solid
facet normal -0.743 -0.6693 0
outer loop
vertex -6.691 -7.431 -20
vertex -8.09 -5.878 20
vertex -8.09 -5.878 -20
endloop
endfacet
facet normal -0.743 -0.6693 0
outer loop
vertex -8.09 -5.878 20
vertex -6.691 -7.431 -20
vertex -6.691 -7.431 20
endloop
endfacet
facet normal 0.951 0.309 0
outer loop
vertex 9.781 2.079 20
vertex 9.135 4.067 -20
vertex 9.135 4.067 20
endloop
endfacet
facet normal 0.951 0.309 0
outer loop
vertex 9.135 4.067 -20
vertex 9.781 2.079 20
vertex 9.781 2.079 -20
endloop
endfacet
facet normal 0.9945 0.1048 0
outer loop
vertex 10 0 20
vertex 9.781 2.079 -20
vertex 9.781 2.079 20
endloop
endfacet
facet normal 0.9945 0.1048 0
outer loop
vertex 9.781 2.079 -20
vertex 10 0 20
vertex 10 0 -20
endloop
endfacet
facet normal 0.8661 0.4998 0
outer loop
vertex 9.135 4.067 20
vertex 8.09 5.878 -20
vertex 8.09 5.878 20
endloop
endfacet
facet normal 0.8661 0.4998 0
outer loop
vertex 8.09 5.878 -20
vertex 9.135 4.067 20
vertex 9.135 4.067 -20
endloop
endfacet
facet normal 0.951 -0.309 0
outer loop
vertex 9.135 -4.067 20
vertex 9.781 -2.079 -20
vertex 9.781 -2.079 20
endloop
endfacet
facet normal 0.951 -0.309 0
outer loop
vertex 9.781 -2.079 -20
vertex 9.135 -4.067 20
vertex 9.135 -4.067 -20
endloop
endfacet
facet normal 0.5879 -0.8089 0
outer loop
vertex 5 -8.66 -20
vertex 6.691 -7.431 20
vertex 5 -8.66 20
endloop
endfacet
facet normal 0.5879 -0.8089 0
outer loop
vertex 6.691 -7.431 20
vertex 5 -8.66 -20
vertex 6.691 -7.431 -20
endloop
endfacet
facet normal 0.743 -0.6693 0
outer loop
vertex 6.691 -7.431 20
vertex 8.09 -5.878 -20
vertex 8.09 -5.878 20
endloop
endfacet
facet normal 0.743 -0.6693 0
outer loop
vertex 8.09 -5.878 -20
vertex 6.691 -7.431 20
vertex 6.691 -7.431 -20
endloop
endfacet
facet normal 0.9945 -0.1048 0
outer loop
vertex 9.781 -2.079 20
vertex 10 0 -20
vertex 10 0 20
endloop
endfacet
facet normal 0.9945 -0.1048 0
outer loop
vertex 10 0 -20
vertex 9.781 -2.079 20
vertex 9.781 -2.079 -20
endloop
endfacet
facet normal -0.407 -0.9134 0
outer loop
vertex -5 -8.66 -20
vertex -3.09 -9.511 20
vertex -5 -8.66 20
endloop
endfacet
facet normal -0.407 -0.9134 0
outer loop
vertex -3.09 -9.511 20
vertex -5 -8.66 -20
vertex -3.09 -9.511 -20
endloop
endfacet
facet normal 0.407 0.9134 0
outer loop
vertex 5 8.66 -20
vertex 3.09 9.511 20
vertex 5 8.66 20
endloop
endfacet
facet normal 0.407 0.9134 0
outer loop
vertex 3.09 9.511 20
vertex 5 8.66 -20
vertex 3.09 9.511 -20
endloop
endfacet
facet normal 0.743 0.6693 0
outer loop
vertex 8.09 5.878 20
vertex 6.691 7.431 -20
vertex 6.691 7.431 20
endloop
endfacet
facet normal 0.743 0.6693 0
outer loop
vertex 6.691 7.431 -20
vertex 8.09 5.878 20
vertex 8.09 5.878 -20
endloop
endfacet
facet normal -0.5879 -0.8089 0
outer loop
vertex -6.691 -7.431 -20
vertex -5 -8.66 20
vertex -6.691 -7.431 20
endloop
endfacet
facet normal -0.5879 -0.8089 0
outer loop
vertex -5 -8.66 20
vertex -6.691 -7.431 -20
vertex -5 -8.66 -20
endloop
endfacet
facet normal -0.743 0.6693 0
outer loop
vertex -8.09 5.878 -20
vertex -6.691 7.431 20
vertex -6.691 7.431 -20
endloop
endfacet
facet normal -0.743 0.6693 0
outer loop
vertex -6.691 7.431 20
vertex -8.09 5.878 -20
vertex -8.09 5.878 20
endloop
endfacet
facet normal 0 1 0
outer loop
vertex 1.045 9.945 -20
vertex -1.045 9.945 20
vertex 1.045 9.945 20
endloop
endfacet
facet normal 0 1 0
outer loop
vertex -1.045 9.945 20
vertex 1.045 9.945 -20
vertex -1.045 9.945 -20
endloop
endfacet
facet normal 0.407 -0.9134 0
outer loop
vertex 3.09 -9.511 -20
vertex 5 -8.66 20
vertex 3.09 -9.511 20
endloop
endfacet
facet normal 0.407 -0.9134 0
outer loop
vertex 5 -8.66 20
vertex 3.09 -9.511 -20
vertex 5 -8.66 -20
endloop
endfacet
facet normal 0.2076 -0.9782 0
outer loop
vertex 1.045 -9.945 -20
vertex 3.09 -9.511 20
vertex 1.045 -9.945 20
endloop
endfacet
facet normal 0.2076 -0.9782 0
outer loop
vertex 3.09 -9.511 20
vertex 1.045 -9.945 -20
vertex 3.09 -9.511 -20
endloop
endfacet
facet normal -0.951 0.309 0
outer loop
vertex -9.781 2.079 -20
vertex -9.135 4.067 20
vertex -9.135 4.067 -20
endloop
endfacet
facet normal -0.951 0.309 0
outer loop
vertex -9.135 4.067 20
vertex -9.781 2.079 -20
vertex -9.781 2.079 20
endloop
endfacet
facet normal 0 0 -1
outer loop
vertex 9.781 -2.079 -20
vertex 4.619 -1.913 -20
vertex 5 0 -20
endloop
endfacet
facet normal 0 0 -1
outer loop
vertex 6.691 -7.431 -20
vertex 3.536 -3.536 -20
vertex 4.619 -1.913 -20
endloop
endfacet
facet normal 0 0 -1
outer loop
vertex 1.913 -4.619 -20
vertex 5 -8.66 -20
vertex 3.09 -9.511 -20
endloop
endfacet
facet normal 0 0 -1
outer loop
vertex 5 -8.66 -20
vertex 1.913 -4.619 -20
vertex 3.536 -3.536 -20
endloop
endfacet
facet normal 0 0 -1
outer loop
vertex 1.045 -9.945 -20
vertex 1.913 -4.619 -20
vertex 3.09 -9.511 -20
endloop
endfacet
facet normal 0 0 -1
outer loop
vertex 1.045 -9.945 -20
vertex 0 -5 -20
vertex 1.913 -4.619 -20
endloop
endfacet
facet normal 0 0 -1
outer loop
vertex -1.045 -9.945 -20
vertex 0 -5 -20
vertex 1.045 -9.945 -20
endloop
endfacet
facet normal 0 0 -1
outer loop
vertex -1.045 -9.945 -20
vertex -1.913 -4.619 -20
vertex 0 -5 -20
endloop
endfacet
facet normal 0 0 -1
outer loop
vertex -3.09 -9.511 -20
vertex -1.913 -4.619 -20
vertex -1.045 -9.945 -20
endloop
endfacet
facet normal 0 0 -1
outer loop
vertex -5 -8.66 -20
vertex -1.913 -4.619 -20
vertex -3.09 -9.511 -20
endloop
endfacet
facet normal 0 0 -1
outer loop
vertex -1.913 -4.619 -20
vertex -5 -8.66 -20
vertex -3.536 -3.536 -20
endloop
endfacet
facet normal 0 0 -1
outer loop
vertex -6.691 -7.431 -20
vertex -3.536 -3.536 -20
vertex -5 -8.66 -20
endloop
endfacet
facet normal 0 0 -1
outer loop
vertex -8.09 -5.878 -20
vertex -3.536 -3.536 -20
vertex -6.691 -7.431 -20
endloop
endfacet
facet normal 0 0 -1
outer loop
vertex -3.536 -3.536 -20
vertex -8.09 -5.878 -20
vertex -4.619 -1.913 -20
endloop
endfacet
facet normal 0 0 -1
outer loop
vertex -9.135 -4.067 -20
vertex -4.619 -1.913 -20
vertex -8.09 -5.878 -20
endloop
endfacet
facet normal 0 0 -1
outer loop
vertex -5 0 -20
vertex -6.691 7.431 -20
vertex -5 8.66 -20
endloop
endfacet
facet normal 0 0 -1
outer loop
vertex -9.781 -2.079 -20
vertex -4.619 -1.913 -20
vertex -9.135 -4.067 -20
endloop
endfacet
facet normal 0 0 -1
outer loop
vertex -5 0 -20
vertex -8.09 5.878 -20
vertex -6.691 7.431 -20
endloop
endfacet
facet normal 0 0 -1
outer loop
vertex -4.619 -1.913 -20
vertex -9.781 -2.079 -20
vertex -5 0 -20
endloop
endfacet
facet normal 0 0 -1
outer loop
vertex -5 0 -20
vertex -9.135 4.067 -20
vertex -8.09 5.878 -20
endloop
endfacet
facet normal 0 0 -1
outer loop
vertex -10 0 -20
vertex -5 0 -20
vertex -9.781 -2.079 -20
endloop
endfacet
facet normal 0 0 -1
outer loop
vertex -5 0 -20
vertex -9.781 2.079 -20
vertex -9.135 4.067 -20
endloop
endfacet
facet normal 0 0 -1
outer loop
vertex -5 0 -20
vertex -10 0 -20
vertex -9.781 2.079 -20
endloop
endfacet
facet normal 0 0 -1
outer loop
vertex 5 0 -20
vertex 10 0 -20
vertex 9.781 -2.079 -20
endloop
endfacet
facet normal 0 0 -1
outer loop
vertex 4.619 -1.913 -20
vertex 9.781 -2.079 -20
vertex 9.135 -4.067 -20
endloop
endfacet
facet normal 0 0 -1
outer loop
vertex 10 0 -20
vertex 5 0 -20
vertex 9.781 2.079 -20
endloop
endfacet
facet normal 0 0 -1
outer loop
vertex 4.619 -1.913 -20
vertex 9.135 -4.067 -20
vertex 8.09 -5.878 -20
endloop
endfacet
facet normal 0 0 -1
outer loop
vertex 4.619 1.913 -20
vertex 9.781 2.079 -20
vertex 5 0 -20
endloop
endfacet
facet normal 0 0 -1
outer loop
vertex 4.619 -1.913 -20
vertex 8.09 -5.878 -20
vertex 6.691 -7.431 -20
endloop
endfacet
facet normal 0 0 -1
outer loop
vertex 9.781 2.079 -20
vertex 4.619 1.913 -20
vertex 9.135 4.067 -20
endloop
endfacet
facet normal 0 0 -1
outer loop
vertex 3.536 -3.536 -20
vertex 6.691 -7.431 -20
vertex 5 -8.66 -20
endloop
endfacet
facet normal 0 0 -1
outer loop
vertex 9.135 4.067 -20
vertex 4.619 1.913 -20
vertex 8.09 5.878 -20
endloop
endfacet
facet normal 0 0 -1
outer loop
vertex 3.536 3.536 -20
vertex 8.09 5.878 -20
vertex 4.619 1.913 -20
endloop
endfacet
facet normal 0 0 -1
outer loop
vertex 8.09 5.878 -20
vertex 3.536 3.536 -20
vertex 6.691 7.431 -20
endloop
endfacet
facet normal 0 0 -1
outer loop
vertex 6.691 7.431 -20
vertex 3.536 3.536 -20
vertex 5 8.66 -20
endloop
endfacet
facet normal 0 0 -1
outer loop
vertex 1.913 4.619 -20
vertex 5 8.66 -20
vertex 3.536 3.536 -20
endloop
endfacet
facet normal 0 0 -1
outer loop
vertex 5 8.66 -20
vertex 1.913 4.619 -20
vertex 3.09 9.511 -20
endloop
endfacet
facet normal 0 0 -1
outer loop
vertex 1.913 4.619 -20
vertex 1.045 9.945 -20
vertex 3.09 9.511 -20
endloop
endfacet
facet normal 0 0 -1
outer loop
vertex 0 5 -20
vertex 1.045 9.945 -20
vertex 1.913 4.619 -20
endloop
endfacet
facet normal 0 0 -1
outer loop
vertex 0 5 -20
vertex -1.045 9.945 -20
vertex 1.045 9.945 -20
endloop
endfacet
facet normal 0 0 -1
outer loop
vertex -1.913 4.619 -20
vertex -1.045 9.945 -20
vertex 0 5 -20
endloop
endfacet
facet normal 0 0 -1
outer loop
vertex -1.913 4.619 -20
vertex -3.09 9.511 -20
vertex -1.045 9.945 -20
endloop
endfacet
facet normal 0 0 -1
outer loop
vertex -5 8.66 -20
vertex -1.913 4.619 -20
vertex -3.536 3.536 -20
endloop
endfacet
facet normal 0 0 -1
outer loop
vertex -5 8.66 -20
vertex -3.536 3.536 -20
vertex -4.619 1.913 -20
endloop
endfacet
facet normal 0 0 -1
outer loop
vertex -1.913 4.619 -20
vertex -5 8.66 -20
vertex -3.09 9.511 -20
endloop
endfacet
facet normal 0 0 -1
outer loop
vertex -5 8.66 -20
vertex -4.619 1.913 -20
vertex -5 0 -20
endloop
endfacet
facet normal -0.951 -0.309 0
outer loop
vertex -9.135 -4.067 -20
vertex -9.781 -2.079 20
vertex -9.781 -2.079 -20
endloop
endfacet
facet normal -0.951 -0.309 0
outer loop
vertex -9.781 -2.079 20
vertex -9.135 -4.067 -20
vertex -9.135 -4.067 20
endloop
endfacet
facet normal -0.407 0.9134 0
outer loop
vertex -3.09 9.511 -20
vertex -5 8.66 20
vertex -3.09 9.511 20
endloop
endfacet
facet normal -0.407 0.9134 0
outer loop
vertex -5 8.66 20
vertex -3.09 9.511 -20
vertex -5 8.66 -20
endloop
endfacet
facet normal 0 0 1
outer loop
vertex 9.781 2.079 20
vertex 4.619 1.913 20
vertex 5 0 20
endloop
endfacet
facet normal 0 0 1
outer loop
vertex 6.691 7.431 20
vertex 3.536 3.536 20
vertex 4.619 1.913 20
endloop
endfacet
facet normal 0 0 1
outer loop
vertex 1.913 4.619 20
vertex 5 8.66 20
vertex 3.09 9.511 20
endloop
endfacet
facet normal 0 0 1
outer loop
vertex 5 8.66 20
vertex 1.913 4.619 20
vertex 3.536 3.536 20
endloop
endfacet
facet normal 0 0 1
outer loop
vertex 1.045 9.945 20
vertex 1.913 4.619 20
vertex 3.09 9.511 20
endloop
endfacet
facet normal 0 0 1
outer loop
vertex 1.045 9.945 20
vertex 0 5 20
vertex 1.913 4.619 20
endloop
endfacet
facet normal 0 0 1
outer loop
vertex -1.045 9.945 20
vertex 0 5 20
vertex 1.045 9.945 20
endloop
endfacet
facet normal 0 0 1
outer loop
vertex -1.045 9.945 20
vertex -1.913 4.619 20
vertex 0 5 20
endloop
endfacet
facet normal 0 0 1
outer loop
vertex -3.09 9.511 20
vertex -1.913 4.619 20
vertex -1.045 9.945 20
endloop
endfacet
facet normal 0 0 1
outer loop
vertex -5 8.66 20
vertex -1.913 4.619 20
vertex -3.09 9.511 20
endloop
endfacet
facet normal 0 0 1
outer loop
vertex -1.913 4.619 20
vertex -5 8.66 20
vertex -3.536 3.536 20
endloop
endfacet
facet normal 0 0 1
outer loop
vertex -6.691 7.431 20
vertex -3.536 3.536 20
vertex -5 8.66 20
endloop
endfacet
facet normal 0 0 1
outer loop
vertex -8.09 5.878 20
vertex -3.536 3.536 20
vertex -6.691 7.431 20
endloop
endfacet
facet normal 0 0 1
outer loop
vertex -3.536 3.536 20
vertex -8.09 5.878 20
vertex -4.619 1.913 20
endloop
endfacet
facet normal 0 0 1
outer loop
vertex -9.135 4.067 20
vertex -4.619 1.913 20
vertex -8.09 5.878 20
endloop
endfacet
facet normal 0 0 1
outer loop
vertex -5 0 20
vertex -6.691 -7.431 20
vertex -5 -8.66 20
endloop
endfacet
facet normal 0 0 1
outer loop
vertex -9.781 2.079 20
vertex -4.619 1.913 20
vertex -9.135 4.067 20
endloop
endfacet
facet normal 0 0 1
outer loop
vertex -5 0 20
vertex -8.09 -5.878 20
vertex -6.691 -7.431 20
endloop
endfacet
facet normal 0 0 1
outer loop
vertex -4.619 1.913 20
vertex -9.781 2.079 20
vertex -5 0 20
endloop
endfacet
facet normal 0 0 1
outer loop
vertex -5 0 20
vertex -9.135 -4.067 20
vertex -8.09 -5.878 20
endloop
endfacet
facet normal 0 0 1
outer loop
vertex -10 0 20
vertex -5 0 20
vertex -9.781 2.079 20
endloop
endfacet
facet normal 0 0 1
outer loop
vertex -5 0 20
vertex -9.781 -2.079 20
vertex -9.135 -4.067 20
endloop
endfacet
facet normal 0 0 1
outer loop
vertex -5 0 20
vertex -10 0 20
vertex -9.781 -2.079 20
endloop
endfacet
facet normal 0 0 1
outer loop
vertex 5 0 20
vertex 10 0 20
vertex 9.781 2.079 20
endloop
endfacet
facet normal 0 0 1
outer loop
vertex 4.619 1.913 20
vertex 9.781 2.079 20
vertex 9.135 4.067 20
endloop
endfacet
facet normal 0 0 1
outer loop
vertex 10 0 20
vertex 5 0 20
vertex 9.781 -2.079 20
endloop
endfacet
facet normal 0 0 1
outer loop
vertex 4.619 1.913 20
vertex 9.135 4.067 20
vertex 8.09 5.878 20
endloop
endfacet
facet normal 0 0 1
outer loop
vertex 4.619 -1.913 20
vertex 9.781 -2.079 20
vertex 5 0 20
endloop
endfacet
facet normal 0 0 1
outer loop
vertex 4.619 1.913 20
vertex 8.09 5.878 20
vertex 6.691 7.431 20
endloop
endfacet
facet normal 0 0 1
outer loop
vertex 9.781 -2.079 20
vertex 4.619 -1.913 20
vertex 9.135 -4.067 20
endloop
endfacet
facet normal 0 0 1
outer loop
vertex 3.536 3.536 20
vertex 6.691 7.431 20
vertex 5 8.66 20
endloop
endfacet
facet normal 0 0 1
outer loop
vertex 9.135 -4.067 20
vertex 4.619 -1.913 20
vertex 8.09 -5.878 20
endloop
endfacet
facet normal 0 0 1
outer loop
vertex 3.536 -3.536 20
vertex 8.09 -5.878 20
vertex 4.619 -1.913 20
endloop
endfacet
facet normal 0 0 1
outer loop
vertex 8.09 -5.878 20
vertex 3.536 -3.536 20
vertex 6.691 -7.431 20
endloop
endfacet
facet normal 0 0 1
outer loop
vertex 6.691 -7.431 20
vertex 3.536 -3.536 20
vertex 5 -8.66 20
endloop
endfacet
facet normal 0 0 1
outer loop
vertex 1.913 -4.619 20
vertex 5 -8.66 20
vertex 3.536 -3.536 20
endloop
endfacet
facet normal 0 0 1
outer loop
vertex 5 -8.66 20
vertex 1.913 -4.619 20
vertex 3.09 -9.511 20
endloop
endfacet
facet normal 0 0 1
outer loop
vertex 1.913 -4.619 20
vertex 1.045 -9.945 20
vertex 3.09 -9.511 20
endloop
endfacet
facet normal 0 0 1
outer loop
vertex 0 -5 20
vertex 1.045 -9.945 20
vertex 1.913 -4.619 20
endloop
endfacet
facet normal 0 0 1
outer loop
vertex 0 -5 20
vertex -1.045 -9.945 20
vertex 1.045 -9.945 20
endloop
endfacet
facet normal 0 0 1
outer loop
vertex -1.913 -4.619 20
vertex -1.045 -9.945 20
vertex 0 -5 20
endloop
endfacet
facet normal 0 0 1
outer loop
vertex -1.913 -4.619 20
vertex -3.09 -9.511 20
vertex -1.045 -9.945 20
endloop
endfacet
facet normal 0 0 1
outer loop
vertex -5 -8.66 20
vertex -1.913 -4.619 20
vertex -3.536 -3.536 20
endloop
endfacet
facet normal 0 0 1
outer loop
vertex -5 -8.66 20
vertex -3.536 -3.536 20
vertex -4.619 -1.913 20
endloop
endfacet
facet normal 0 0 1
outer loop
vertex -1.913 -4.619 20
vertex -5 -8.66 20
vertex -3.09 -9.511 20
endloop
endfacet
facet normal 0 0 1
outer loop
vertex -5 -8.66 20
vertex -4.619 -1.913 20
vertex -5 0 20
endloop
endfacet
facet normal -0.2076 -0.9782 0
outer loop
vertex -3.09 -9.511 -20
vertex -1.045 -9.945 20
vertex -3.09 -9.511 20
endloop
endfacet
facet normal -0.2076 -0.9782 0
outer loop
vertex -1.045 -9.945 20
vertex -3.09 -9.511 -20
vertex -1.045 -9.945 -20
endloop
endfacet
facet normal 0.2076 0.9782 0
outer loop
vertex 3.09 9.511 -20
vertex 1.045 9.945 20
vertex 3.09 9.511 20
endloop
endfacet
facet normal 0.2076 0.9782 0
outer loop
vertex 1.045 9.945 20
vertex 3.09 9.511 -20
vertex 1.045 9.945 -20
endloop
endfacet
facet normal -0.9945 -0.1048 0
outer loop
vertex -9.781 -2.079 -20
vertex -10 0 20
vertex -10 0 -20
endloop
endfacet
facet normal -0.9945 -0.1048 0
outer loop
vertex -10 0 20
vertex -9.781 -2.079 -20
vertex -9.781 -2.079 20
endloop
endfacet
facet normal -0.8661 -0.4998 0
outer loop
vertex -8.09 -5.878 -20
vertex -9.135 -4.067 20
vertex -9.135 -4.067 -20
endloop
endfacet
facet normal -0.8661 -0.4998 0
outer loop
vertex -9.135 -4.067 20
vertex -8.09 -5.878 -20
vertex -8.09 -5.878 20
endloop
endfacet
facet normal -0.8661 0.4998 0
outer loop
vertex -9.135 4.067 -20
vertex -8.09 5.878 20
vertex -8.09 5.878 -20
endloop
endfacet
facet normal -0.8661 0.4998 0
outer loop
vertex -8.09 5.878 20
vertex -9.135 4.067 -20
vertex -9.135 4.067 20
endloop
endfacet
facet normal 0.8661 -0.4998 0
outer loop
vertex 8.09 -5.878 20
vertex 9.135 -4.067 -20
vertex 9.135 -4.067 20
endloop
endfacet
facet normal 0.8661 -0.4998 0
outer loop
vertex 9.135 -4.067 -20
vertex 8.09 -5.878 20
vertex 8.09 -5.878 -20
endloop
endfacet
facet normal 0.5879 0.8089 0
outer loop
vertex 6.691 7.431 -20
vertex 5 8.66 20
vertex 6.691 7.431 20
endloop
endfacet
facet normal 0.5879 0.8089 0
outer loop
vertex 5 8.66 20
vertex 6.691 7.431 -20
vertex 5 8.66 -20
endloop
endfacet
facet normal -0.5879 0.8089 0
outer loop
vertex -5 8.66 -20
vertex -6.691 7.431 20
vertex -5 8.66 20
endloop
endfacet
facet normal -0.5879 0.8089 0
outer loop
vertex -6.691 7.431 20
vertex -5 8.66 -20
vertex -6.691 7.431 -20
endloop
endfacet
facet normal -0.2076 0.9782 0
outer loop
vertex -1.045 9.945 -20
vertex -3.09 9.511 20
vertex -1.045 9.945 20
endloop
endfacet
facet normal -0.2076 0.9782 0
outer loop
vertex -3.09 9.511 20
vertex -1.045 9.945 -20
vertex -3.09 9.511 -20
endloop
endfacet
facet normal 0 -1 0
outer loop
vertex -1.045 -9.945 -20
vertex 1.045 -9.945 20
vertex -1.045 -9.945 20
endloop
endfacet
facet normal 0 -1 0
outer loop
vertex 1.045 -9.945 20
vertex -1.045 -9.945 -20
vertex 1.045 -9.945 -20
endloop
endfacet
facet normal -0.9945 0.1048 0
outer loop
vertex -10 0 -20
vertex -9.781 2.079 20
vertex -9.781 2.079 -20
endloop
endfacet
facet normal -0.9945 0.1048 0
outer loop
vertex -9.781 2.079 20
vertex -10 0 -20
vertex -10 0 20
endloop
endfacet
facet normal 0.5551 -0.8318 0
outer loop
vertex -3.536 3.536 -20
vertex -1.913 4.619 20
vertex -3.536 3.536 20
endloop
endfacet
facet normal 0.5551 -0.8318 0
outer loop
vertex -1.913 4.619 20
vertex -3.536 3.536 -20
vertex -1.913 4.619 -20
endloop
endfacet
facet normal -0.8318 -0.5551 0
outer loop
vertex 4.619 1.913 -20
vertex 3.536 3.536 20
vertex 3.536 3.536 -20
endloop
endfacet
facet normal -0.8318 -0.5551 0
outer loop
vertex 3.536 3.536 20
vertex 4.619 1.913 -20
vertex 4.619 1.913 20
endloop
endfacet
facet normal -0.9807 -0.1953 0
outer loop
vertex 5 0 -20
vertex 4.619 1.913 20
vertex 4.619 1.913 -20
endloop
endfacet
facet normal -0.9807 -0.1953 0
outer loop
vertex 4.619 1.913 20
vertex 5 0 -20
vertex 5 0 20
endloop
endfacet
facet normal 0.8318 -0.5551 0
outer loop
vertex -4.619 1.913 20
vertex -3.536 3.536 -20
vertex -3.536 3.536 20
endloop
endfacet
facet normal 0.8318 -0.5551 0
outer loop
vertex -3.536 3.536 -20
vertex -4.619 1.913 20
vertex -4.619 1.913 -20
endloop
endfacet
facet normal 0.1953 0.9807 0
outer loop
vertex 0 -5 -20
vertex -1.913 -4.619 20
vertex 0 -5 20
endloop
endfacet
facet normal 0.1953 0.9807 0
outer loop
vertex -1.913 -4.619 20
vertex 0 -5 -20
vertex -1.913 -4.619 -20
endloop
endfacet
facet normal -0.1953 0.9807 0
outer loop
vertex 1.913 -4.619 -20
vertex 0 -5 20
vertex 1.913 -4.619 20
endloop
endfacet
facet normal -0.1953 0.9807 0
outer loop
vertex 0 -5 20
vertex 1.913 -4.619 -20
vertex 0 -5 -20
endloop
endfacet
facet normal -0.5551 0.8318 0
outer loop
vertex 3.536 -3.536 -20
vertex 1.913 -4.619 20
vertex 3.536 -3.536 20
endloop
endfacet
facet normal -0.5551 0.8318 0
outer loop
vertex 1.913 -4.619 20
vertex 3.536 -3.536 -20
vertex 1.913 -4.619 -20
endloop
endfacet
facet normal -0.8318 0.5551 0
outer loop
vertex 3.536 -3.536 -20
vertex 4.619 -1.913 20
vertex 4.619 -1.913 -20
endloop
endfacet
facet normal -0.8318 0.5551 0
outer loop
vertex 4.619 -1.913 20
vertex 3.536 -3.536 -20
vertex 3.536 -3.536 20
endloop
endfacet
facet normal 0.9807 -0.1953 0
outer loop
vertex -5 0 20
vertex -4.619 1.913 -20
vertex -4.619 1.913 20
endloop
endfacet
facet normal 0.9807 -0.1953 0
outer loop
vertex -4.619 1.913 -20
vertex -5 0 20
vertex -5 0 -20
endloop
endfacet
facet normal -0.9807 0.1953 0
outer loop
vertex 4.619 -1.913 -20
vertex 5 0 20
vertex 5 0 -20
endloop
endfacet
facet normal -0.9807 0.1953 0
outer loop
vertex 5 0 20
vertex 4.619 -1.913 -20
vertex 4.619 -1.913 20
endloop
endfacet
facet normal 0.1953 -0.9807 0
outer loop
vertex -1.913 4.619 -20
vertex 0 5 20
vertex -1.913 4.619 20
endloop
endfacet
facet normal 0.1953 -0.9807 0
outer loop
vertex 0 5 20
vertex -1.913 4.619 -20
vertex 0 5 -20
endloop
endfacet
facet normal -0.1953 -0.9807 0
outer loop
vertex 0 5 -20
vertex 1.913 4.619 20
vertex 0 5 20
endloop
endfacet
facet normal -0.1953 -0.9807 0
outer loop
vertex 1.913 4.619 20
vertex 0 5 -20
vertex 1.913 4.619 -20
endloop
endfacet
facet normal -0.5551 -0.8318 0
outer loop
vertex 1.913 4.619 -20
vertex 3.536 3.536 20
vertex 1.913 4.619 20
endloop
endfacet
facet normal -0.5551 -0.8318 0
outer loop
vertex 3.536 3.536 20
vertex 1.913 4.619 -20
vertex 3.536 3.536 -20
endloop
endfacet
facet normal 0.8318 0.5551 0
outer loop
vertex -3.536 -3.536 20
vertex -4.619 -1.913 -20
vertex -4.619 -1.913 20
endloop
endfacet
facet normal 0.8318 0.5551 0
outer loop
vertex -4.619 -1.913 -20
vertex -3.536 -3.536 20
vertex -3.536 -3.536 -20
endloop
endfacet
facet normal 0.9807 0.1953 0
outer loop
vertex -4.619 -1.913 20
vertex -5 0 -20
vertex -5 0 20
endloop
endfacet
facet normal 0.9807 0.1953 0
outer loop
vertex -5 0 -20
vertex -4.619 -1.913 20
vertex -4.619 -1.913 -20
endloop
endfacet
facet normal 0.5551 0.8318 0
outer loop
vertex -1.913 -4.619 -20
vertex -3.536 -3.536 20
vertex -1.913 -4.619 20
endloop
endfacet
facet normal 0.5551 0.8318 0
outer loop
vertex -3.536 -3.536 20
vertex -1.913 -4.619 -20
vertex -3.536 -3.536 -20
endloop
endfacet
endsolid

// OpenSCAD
// Parameters for the cylindrical component
cylinder_outer_diameter = 20; // Outer diameter of the cylinder
cylinder_height = 40;        // Height of the cylinder
cylinder_inner_diameter = 10; // Inner diameter (hollow center)

// Function to create the cylindrical component
module cylindrical_component() {
    difference() {
        // Outer cylinder
        cylinder(d=cylinder_outer_diameter, h=cylinder_height, center=true);
        // Inner hollow cylinder
        cylinder(d=cylinder_inner_diameter, h=cylinder_height + 1, center=true);
    }
}

// Assembly of the model
translate([0, 0, 0]) {
    cylindrical_component();
}
